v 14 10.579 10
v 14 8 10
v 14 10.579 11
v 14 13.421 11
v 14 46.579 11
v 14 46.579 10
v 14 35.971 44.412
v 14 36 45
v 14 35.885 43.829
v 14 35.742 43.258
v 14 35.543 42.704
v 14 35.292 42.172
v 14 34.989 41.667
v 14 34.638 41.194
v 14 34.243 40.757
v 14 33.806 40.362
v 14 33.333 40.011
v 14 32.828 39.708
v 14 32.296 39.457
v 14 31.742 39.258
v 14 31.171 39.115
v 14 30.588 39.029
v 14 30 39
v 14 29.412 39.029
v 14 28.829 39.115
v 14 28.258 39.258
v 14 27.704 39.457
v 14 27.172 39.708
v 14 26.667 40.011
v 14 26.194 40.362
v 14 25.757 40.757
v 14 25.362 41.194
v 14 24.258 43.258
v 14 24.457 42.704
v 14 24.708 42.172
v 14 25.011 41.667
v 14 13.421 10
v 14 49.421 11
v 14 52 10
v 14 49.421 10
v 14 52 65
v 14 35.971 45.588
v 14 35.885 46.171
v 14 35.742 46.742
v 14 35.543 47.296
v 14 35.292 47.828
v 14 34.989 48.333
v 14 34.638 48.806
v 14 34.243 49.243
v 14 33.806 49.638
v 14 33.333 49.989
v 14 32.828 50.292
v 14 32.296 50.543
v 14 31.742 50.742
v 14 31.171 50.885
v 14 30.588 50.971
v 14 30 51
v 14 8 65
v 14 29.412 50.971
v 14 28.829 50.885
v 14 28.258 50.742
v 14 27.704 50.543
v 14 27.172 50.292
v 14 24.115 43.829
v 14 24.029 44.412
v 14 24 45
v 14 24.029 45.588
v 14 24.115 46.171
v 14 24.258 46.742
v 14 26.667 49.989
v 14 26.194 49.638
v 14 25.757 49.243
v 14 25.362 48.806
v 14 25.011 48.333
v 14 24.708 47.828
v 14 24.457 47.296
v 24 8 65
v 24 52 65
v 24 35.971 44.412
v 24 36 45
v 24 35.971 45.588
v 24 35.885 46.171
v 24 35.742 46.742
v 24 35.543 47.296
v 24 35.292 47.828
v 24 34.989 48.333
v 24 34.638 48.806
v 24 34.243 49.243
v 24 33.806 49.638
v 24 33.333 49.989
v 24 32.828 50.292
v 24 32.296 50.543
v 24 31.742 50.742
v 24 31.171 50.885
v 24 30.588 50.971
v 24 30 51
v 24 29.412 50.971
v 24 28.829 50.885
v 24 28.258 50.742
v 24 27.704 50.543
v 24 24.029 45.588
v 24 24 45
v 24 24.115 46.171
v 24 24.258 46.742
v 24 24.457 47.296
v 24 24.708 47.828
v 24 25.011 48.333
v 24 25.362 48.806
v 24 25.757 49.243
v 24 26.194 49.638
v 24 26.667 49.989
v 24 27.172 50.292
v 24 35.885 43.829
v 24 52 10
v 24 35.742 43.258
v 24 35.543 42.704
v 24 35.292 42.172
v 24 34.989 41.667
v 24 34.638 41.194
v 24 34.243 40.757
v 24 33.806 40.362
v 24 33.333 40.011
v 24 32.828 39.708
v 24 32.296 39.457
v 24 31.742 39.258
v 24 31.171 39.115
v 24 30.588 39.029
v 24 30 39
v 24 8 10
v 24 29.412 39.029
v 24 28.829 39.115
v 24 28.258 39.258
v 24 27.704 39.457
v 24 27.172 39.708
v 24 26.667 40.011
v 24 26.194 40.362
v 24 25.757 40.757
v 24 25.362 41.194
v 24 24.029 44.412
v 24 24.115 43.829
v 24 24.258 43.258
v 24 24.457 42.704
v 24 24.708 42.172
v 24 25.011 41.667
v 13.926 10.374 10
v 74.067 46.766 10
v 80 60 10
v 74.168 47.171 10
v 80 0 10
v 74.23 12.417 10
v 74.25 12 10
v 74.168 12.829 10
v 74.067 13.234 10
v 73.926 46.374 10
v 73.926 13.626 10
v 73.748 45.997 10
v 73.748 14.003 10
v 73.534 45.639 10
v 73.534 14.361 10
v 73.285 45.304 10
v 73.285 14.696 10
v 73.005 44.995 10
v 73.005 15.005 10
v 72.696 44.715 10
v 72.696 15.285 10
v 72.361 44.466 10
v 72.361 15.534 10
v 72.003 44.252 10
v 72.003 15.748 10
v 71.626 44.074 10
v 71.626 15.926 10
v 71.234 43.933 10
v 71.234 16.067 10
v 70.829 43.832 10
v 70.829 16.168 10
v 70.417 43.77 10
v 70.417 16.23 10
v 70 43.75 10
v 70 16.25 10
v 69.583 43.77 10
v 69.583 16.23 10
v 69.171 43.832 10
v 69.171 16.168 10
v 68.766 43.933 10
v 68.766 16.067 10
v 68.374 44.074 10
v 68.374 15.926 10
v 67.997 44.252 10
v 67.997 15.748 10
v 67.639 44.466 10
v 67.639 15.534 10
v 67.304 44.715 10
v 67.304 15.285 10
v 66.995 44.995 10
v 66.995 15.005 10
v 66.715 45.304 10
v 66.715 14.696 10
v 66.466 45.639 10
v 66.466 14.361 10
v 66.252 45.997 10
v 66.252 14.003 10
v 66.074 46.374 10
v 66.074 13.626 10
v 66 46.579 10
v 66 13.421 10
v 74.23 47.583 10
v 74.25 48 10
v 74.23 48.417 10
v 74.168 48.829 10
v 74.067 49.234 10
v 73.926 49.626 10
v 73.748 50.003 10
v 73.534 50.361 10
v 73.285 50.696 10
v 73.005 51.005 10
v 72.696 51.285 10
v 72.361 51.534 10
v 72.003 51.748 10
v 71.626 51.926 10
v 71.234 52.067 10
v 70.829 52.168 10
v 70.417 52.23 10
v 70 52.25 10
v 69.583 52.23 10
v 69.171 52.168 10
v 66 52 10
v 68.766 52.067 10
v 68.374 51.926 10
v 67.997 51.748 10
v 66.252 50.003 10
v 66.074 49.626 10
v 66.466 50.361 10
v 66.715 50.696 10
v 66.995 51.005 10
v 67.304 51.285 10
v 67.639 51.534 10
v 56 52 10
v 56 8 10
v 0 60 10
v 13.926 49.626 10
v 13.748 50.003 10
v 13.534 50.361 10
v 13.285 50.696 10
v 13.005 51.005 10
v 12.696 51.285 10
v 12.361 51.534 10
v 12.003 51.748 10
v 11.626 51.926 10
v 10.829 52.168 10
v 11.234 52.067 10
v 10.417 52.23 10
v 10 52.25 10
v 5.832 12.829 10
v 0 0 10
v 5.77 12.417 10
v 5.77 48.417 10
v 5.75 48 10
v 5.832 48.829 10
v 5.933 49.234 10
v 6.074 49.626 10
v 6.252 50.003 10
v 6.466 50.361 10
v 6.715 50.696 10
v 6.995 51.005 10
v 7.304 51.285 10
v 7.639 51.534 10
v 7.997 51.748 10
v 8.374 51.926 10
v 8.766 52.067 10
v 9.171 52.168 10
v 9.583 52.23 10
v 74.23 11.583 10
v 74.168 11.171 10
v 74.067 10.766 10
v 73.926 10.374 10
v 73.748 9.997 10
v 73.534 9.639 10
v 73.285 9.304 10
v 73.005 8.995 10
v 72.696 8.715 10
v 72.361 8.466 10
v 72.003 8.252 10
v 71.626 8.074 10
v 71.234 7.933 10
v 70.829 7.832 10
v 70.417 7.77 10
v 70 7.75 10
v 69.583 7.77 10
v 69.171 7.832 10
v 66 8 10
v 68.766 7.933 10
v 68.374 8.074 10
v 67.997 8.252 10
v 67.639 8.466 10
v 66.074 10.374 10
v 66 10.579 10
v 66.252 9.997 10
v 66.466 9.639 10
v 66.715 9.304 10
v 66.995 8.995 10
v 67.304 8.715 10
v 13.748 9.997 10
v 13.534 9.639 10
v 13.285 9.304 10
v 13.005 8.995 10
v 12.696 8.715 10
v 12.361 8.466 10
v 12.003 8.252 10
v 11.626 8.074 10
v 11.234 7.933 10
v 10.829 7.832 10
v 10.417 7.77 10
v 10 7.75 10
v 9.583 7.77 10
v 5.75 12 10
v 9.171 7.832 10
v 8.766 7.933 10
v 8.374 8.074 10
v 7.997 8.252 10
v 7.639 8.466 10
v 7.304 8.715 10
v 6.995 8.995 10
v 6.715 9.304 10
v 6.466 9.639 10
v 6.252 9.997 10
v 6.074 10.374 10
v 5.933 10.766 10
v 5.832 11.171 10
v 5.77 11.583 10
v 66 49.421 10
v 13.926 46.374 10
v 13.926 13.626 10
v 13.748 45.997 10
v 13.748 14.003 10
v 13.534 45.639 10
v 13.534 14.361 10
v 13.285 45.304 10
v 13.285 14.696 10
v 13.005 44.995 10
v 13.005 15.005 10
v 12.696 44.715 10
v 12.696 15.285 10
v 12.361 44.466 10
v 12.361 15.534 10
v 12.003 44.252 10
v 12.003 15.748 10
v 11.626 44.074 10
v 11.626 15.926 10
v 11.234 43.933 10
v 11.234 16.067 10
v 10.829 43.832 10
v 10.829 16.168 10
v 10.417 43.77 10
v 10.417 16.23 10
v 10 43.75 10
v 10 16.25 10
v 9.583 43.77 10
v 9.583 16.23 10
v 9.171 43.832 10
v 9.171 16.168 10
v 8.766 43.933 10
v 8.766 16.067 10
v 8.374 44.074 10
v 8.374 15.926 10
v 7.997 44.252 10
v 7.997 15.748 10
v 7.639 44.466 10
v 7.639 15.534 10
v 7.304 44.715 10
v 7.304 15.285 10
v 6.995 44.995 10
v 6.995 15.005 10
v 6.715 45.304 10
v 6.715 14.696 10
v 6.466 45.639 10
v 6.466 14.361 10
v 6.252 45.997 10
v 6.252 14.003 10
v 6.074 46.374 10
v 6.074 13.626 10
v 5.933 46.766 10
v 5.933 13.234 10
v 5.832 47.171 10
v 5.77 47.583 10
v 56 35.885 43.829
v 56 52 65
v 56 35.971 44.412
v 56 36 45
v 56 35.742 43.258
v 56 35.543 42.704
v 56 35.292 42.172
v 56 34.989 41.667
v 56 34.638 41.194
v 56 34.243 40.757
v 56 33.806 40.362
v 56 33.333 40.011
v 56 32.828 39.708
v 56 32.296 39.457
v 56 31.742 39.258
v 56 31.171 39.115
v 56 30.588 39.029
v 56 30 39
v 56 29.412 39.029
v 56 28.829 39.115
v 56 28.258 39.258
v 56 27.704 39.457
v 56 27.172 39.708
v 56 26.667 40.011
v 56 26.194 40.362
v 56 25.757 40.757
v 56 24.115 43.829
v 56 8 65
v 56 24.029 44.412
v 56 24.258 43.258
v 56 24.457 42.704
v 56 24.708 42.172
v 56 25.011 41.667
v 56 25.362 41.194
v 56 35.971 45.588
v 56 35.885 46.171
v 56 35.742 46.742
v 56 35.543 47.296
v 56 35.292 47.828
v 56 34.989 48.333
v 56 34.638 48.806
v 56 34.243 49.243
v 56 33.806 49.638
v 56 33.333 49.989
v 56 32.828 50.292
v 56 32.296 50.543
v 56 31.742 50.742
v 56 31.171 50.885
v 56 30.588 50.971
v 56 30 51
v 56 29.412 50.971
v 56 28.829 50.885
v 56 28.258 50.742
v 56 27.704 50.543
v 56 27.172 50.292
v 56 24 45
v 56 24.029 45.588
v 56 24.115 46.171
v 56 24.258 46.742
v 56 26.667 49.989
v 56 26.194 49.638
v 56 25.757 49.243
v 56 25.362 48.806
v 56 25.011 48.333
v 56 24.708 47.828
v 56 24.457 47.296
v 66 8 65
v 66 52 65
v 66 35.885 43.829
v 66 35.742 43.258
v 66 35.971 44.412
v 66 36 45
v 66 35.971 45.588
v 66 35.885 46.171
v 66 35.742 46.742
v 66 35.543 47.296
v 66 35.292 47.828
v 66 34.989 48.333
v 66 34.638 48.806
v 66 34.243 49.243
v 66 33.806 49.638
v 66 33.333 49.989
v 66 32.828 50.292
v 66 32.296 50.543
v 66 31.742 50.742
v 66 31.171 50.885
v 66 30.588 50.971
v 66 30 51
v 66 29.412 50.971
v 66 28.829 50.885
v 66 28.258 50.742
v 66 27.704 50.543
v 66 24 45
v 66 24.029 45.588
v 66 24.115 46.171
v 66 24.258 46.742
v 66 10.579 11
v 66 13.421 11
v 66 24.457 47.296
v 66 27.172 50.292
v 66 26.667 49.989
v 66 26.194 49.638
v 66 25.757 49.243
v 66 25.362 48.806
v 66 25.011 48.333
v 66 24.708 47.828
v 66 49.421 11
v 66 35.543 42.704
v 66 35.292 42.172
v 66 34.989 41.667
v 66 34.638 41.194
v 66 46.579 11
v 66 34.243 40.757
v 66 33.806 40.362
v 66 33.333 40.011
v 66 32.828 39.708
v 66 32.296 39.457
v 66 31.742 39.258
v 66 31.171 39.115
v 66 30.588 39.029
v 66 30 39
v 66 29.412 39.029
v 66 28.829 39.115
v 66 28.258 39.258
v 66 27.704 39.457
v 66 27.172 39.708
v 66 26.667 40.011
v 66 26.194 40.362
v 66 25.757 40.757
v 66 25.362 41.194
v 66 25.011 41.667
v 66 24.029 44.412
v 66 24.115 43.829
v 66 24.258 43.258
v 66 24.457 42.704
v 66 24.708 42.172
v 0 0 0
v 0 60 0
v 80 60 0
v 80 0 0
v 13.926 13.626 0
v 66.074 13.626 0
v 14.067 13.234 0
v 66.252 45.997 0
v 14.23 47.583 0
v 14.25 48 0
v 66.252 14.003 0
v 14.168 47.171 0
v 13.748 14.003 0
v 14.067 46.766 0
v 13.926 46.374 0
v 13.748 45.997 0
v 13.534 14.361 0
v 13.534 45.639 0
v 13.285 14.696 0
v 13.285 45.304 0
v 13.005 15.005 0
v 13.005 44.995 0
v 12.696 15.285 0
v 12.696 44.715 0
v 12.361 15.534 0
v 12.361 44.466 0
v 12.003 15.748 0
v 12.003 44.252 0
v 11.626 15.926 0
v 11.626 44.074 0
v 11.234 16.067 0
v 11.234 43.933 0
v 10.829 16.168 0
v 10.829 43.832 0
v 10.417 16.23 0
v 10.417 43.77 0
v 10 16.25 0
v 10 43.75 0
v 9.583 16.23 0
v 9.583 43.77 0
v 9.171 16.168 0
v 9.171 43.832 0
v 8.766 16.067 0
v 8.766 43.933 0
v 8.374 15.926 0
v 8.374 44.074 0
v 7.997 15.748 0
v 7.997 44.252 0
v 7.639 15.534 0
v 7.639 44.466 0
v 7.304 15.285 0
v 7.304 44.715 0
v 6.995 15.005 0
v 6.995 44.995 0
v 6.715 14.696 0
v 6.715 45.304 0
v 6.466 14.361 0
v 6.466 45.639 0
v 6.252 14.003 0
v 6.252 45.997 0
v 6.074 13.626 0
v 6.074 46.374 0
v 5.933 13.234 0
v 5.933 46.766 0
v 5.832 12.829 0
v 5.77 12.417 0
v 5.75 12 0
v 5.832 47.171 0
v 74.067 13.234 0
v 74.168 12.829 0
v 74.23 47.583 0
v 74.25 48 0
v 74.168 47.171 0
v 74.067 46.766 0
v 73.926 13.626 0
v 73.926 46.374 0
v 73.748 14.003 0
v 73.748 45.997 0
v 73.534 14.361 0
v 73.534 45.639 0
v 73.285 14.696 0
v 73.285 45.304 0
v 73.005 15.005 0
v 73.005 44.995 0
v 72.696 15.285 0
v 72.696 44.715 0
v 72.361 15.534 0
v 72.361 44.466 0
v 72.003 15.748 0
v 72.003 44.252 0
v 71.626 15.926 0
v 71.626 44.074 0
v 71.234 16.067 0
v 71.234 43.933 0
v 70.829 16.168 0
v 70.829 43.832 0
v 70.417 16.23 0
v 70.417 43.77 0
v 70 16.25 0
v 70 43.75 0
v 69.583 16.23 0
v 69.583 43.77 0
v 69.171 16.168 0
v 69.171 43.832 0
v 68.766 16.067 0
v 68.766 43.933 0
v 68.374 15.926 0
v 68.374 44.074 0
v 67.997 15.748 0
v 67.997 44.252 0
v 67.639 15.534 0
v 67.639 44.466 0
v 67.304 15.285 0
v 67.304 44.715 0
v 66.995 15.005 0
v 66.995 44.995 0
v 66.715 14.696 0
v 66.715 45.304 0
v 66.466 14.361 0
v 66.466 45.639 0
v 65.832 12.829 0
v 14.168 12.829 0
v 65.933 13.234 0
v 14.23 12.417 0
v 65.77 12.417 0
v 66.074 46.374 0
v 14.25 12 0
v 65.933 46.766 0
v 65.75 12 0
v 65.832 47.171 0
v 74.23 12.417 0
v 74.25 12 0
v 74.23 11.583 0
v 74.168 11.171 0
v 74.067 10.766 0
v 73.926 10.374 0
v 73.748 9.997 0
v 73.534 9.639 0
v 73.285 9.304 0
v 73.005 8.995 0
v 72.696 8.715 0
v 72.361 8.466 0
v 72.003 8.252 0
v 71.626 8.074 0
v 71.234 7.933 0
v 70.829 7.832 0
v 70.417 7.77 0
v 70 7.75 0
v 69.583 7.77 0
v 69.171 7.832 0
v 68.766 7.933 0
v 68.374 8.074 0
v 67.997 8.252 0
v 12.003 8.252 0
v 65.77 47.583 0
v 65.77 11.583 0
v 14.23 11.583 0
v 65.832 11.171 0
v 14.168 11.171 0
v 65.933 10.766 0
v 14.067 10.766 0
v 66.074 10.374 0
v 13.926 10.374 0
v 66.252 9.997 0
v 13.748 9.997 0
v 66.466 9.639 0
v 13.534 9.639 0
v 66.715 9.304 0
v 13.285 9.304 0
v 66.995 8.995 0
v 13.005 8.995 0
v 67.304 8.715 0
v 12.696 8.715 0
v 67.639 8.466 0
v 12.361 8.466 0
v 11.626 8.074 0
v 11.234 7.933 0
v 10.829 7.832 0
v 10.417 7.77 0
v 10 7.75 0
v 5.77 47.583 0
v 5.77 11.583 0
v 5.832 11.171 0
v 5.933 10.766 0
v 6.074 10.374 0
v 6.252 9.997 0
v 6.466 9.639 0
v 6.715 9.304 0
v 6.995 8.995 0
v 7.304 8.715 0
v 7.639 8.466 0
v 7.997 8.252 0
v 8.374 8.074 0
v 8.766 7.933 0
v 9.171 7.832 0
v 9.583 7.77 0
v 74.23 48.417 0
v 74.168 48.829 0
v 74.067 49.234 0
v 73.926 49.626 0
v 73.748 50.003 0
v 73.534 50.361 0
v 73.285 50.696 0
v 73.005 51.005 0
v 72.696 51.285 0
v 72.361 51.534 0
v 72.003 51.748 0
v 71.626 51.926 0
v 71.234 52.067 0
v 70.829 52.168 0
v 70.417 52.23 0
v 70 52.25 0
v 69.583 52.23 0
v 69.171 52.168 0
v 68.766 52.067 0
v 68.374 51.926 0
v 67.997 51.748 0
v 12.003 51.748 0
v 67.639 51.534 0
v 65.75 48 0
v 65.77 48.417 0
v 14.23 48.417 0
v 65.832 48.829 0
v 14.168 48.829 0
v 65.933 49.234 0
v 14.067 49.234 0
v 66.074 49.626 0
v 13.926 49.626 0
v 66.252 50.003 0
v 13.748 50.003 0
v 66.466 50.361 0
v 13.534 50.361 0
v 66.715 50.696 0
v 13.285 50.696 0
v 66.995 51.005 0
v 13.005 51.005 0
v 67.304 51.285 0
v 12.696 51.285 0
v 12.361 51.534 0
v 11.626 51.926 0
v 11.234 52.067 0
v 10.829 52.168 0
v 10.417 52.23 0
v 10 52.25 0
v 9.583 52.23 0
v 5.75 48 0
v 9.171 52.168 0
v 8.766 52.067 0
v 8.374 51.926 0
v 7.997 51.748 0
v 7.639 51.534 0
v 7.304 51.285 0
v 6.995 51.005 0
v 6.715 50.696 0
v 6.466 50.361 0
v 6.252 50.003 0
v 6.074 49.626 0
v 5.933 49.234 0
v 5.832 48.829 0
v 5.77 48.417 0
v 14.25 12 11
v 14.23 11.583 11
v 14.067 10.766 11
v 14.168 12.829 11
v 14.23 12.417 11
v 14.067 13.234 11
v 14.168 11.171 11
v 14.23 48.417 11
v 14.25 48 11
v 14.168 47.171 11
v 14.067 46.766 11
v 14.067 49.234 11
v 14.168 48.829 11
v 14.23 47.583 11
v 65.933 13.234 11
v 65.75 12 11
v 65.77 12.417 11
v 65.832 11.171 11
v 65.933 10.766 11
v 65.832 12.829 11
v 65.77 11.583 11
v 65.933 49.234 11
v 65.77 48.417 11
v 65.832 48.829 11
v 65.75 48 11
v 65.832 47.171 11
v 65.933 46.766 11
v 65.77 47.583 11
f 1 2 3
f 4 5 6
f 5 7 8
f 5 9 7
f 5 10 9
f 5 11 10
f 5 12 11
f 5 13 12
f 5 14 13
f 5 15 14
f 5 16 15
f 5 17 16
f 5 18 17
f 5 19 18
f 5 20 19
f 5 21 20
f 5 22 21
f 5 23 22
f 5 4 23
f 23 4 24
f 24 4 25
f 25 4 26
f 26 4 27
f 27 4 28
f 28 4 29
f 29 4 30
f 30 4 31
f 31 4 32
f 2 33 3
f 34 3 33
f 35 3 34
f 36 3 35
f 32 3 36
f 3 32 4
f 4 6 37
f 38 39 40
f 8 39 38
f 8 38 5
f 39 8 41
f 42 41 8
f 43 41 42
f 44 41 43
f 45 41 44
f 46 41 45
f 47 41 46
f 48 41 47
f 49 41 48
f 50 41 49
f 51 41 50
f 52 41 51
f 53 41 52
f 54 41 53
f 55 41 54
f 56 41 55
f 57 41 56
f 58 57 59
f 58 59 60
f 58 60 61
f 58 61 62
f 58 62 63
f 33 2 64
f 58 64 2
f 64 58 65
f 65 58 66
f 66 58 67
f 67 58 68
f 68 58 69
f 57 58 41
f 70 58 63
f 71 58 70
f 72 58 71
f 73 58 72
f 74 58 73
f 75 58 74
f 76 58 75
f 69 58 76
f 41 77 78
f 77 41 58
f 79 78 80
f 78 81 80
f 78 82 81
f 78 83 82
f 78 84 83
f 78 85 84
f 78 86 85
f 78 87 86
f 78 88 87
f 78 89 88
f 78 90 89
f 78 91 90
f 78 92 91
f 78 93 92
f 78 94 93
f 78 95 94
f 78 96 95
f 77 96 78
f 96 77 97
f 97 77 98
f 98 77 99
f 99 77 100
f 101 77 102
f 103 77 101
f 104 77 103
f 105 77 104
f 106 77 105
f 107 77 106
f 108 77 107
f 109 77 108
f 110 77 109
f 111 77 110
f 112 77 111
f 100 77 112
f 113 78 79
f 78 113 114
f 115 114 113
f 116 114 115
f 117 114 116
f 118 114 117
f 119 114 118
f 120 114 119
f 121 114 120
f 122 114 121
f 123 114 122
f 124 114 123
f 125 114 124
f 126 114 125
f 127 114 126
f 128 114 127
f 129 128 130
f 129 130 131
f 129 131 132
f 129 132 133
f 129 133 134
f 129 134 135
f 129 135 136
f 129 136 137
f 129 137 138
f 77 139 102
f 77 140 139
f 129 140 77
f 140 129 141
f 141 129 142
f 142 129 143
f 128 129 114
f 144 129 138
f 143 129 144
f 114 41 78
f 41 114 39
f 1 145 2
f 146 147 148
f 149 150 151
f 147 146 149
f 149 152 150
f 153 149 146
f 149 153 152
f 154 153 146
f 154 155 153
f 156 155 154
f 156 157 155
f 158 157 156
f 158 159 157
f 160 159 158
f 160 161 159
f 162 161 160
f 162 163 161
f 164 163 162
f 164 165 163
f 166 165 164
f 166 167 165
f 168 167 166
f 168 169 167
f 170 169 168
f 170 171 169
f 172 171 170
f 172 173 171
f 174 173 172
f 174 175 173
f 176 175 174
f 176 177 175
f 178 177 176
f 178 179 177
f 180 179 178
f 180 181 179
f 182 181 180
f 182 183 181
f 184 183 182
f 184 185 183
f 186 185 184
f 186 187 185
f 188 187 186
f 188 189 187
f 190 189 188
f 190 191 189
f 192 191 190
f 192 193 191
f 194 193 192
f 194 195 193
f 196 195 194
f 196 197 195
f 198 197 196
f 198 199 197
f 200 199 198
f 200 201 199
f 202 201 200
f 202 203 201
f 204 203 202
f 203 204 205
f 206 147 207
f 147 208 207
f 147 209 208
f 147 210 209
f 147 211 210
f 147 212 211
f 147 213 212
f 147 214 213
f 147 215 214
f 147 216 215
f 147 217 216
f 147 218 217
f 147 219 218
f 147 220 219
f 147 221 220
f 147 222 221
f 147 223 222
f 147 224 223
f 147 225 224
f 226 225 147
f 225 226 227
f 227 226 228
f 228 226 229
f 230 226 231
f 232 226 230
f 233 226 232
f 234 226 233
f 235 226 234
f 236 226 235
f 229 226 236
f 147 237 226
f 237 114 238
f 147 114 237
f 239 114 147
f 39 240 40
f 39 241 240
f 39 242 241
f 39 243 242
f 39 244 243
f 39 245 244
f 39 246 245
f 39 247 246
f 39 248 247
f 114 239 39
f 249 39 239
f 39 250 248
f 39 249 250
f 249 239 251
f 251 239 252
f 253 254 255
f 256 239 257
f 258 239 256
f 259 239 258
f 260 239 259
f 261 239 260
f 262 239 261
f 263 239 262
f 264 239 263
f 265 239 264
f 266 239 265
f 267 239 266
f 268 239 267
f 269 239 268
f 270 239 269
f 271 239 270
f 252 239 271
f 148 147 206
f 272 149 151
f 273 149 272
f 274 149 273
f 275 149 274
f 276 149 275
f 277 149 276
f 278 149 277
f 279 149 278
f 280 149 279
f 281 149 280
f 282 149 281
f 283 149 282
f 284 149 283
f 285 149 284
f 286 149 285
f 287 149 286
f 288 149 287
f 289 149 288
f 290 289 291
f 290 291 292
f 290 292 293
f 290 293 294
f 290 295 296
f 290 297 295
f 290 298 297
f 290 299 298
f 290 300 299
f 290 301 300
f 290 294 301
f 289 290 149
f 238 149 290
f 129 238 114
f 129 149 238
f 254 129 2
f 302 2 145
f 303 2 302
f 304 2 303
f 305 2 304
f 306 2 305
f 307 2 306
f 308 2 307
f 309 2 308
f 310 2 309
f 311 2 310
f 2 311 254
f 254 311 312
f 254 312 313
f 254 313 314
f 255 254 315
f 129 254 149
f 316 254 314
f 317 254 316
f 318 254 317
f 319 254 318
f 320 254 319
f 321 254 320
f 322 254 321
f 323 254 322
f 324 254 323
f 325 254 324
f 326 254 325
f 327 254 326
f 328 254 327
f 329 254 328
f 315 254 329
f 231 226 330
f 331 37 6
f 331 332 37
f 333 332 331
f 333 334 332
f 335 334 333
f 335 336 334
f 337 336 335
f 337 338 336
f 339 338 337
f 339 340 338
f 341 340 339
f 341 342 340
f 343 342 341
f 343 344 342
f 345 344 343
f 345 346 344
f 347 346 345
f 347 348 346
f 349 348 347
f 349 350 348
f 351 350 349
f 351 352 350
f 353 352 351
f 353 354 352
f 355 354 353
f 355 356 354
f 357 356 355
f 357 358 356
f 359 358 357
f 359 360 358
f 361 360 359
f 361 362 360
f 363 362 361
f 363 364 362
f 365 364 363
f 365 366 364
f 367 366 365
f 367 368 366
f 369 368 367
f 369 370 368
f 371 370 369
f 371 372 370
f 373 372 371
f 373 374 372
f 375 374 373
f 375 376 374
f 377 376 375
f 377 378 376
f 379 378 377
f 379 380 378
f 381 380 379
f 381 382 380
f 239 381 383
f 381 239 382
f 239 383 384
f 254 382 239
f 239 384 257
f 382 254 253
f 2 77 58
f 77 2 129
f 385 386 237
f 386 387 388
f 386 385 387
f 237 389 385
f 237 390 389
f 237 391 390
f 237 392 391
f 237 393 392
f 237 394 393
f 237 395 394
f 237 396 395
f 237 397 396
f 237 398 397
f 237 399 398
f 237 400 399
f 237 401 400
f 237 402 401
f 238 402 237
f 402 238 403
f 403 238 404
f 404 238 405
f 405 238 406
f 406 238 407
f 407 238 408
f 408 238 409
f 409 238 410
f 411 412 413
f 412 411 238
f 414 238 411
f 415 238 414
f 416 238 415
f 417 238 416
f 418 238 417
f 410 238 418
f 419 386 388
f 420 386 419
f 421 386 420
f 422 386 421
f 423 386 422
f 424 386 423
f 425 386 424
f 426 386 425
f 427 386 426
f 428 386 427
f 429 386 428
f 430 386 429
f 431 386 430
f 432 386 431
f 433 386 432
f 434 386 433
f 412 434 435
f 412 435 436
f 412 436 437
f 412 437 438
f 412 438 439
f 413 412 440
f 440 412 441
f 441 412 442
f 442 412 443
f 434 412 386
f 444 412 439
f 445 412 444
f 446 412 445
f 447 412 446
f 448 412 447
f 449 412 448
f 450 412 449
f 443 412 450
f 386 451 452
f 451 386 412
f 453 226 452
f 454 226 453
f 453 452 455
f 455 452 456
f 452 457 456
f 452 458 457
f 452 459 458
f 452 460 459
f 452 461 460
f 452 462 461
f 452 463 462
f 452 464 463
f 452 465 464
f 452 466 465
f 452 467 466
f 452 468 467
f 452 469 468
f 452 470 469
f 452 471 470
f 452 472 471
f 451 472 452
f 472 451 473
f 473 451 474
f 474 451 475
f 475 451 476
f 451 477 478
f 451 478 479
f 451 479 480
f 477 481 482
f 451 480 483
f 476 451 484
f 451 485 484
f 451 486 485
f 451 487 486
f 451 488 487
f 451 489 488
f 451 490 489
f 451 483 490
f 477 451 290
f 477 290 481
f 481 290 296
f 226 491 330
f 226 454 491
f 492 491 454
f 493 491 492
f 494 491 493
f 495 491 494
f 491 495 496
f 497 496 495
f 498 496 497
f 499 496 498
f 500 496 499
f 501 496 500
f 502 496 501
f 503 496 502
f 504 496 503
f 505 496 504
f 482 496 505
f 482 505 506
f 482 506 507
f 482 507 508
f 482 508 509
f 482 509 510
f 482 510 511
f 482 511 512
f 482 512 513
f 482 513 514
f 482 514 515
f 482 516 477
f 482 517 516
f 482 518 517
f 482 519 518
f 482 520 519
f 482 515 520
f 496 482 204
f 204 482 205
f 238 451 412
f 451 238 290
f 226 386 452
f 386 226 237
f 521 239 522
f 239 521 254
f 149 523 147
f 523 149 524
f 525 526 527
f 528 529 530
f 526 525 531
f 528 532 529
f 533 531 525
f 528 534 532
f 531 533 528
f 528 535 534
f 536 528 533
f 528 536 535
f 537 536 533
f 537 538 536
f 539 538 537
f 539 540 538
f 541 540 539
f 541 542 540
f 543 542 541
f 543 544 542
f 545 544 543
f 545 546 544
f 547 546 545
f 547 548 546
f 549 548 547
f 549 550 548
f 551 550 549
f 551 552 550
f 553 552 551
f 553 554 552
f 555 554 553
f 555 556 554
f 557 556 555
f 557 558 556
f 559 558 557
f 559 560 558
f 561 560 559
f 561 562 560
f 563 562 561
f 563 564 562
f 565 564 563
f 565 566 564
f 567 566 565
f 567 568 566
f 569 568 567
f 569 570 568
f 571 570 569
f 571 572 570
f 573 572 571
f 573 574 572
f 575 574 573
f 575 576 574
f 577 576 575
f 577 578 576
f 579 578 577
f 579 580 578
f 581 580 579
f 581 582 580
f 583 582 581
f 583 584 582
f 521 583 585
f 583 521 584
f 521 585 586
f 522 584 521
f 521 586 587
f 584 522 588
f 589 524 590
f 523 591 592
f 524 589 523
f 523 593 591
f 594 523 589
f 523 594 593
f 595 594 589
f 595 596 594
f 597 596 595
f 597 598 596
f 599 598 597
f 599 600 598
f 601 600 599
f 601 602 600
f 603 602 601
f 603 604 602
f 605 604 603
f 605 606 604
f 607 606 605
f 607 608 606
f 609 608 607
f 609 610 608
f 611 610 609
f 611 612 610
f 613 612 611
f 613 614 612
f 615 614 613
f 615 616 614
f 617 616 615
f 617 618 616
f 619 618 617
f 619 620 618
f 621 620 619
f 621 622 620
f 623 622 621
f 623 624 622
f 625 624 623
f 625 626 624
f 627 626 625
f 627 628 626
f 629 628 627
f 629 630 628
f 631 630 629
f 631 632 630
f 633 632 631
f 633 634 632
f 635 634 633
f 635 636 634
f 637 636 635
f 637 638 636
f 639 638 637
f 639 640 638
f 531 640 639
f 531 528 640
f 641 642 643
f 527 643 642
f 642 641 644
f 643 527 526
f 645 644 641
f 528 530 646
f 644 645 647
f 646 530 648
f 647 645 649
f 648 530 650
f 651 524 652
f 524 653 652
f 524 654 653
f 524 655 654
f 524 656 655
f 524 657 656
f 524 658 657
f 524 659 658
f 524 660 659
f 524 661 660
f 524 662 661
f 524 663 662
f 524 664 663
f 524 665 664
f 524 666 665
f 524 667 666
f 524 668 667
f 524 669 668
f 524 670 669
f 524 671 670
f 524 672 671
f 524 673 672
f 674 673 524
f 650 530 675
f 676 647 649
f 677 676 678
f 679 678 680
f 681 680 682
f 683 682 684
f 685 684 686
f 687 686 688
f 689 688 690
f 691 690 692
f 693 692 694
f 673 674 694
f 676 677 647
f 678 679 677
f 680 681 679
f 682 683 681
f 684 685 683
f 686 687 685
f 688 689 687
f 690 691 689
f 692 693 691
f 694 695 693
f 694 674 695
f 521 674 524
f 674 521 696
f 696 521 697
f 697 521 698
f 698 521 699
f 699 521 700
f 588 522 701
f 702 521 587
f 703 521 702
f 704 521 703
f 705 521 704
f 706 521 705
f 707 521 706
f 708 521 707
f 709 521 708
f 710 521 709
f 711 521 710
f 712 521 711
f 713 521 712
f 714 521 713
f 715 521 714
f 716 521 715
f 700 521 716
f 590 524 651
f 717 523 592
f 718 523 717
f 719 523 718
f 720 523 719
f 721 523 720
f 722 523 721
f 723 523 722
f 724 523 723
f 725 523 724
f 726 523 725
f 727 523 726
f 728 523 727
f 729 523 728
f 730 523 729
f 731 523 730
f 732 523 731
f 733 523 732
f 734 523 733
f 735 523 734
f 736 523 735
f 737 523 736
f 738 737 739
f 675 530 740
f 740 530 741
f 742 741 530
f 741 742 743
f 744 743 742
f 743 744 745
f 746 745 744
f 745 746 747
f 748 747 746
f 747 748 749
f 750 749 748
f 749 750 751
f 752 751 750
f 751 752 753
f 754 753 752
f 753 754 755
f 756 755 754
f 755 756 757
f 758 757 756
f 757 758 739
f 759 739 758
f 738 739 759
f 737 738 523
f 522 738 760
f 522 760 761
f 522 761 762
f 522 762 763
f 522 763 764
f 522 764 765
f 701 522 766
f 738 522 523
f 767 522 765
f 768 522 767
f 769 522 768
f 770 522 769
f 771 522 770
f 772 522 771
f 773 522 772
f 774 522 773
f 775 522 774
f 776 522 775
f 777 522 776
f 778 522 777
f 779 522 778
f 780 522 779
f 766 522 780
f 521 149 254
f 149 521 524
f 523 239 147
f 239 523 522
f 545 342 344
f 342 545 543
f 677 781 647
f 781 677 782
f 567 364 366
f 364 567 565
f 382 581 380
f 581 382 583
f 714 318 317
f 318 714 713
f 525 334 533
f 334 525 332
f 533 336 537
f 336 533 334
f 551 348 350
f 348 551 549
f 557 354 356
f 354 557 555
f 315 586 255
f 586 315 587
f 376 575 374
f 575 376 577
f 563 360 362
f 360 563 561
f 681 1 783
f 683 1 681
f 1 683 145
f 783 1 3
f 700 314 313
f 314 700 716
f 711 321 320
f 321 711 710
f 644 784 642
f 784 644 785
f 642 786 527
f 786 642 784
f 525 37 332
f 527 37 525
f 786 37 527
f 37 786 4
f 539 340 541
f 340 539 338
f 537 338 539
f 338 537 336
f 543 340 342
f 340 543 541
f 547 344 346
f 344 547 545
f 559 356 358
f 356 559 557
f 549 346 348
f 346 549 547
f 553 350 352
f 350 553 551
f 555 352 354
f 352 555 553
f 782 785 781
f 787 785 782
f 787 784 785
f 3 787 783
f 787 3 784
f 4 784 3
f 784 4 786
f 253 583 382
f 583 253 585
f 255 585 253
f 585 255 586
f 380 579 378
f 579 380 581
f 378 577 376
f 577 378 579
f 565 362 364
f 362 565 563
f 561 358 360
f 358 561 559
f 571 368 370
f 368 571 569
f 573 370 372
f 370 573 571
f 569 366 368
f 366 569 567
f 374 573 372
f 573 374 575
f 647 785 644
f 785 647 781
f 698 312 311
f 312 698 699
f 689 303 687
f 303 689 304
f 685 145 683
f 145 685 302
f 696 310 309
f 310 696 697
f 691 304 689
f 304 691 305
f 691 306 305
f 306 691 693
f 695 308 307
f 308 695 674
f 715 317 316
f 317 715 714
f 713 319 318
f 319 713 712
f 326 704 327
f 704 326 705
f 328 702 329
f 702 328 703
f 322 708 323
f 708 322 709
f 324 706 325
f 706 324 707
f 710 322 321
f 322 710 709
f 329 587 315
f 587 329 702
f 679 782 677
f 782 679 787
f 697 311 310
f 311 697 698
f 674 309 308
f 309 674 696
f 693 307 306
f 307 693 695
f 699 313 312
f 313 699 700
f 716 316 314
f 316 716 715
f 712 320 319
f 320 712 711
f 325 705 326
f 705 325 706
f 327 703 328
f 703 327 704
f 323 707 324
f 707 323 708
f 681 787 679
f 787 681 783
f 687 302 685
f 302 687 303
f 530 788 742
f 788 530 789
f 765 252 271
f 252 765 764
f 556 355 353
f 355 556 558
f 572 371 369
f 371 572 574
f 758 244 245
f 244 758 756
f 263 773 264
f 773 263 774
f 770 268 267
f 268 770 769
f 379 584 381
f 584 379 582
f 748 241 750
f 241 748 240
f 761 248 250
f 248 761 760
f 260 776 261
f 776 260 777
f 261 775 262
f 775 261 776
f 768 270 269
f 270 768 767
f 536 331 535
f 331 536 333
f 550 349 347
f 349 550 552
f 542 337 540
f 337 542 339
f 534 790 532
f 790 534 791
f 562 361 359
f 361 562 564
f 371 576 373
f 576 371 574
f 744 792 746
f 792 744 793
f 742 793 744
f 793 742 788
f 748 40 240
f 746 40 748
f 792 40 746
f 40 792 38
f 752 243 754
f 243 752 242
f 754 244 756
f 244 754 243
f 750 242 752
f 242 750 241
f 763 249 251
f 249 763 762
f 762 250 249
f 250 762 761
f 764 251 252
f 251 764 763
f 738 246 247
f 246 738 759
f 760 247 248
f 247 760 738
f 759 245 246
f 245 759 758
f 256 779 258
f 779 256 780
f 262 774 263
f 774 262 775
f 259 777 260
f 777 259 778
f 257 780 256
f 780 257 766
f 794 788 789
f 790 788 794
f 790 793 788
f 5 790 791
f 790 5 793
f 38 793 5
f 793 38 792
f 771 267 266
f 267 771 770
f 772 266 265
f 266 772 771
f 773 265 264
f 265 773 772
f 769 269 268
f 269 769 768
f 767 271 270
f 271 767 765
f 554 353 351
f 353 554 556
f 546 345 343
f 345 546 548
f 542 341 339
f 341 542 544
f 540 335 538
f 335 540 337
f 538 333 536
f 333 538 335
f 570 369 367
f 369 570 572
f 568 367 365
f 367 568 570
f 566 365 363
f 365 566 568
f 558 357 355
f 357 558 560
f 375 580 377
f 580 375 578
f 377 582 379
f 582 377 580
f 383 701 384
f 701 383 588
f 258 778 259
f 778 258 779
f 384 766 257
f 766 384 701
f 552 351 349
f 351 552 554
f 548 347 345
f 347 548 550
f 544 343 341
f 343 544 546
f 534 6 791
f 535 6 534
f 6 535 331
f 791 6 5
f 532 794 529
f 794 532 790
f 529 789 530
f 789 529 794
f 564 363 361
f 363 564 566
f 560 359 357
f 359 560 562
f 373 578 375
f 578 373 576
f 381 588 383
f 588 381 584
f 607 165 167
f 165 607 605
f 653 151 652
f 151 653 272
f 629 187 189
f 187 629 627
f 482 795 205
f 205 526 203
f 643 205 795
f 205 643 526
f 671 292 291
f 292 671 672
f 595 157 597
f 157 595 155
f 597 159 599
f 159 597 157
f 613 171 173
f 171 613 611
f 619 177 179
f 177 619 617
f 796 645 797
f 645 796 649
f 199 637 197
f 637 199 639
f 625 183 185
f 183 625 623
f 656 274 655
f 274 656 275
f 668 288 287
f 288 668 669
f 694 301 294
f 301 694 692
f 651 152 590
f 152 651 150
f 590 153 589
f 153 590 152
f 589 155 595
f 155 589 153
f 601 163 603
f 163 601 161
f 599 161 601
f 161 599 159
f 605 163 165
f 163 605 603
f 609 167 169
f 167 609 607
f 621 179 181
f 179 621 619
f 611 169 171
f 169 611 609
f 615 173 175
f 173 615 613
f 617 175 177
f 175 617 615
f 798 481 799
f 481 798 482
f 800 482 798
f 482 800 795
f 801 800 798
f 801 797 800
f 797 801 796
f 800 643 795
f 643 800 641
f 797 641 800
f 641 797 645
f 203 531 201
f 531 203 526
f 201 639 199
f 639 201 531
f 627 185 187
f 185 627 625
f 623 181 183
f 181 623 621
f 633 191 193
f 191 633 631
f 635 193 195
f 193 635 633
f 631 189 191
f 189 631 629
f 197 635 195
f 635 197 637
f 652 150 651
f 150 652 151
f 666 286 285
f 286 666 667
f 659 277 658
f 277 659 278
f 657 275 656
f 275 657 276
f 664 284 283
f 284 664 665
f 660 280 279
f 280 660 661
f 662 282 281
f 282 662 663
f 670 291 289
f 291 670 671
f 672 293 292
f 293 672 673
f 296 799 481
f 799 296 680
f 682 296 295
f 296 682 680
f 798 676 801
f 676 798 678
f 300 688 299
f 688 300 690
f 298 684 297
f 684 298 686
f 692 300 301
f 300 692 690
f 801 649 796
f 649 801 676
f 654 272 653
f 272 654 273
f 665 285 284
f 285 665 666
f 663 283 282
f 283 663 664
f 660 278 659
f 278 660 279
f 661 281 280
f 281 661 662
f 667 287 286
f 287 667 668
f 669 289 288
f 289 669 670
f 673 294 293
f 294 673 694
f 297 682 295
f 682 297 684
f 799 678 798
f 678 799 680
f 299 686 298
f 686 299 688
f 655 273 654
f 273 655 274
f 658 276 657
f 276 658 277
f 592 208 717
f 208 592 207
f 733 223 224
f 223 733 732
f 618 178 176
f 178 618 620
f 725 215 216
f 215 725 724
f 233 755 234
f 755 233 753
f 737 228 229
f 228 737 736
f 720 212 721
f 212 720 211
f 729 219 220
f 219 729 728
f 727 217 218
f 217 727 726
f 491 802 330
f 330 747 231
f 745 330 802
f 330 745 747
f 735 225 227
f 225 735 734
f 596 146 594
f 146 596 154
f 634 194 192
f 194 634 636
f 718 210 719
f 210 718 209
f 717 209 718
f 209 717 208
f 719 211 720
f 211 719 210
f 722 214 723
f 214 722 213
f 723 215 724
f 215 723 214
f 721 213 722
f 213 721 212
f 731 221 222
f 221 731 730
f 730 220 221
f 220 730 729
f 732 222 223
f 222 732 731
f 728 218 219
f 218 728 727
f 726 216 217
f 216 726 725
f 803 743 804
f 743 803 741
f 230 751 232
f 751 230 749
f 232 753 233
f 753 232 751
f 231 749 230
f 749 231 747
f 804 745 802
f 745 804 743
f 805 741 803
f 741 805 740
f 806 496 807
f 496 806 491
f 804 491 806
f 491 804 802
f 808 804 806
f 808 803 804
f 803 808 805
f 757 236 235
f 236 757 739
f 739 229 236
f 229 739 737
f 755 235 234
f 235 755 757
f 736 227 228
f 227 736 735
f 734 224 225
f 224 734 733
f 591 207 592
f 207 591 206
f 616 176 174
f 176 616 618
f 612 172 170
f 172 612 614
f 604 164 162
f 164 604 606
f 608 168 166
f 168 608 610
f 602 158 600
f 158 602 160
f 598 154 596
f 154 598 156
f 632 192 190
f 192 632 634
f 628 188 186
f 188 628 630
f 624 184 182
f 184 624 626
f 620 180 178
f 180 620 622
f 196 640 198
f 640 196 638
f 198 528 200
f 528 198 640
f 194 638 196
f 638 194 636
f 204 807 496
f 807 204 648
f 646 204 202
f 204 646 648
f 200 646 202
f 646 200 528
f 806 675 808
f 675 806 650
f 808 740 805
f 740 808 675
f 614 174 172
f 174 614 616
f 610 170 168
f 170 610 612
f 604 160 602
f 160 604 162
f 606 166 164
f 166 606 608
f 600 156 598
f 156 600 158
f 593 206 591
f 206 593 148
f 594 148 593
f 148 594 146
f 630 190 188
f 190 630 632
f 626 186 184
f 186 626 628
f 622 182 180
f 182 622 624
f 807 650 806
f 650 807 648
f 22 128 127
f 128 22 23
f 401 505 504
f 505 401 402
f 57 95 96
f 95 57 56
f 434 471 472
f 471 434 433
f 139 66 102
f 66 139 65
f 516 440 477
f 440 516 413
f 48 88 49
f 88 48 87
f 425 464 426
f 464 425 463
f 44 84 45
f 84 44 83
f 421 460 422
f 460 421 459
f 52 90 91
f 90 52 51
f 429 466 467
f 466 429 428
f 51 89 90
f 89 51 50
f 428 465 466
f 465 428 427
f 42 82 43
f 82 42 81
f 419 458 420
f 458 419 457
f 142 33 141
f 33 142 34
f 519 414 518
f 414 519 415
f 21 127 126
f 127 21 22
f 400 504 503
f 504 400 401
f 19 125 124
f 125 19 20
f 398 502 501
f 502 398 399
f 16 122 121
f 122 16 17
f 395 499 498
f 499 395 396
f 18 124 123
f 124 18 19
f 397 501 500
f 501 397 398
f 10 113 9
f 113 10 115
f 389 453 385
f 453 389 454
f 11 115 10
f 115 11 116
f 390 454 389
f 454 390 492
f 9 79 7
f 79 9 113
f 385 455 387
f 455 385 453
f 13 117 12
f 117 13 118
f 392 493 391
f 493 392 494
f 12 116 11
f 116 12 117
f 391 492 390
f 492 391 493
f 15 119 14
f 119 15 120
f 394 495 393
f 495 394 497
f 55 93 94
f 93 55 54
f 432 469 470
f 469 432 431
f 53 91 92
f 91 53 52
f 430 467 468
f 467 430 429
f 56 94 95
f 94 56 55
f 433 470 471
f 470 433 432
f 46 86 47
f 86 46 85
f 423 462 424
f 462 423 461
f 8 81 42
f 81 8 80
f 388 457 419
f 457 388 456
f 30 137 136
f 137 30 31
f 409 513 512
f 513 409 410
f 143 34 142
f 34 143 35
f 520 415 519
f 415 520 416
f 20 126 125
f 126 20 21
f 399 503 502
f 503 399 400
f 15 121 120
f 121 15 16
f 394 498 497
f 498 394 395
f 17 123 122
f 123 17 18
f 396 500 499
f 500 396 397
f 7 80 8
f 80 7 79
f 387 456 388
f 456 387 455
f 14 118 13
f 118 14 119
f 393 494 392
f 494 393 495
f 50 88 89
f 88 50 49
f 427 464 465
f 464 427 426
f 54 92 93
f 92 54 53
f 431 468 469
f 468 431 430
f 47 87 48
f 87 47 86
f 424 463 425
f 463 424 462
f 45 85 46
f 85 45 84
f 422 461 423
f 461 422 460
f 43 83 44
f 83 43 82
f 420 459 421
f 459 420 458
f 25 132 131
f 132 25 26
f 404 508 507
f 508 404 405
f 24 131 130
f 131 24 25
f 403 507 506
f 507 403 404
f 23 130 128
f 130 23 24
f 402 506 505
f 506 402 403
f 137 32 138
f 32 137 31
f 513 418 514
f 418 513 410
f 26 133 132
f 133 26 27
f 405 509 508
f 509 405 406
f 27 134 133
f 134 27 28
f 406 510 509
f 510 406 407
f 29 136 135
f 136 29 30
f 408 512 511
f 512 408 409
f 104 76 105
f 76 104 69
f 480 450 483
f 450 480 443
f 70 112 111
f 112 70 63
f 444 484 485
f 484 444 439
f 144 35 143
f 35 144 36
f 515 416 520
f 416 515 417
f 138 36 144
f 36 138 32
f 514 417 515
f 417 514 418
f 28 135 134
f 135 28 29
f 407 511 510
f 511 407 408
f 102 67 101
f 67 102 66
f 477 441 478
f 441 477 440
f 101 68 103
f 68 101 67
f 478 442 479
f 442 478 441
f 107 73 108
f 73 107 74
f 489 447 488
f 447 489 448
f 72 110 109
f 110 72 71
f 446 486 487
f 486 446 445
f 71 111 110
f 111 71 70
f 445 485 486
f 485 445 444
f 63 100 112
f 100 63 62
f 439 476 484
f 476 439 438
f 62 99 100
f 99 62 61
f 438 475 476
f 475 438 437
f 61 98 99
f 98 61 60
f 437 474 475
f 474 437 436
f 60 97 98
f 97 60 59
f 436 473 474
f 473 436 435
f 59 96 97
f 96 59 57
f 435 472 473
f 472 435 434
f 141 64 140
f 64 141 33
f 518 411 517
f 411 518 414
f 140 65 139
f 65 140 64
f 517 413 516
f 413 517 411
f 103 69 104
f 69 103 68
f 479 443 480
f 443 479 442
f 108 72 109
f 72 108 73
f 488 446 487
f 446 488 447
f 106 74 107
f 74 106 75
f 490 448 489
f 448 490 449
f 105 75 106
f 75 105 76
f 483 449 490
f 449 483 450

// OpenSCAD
// Original MechIntel educational model. CC0-1.0. Units: mm.
// Not a standardized or load-rated component.
$fn=96;
length=80; depth=60; height=65; base=10; ear=10; gap=32; pin=12;
$fn=64;
difference(){
 union(){
  cube([length,depth,base]);
  for(x=[(length-gap)/2-ear,(length+gap)/2]) translate([x,8,base]) cube([ear,depth-16,height-base]);
 }
 translate([-1,depth/2,45]) rotate([0,90,0]) cylinder(d=pin,h=length+2);
 for(x=[10,length-10]) for(y=[12,depth-12]) translate([x,y,-1]) cylinder(d=8.5,h=base+2);
}
